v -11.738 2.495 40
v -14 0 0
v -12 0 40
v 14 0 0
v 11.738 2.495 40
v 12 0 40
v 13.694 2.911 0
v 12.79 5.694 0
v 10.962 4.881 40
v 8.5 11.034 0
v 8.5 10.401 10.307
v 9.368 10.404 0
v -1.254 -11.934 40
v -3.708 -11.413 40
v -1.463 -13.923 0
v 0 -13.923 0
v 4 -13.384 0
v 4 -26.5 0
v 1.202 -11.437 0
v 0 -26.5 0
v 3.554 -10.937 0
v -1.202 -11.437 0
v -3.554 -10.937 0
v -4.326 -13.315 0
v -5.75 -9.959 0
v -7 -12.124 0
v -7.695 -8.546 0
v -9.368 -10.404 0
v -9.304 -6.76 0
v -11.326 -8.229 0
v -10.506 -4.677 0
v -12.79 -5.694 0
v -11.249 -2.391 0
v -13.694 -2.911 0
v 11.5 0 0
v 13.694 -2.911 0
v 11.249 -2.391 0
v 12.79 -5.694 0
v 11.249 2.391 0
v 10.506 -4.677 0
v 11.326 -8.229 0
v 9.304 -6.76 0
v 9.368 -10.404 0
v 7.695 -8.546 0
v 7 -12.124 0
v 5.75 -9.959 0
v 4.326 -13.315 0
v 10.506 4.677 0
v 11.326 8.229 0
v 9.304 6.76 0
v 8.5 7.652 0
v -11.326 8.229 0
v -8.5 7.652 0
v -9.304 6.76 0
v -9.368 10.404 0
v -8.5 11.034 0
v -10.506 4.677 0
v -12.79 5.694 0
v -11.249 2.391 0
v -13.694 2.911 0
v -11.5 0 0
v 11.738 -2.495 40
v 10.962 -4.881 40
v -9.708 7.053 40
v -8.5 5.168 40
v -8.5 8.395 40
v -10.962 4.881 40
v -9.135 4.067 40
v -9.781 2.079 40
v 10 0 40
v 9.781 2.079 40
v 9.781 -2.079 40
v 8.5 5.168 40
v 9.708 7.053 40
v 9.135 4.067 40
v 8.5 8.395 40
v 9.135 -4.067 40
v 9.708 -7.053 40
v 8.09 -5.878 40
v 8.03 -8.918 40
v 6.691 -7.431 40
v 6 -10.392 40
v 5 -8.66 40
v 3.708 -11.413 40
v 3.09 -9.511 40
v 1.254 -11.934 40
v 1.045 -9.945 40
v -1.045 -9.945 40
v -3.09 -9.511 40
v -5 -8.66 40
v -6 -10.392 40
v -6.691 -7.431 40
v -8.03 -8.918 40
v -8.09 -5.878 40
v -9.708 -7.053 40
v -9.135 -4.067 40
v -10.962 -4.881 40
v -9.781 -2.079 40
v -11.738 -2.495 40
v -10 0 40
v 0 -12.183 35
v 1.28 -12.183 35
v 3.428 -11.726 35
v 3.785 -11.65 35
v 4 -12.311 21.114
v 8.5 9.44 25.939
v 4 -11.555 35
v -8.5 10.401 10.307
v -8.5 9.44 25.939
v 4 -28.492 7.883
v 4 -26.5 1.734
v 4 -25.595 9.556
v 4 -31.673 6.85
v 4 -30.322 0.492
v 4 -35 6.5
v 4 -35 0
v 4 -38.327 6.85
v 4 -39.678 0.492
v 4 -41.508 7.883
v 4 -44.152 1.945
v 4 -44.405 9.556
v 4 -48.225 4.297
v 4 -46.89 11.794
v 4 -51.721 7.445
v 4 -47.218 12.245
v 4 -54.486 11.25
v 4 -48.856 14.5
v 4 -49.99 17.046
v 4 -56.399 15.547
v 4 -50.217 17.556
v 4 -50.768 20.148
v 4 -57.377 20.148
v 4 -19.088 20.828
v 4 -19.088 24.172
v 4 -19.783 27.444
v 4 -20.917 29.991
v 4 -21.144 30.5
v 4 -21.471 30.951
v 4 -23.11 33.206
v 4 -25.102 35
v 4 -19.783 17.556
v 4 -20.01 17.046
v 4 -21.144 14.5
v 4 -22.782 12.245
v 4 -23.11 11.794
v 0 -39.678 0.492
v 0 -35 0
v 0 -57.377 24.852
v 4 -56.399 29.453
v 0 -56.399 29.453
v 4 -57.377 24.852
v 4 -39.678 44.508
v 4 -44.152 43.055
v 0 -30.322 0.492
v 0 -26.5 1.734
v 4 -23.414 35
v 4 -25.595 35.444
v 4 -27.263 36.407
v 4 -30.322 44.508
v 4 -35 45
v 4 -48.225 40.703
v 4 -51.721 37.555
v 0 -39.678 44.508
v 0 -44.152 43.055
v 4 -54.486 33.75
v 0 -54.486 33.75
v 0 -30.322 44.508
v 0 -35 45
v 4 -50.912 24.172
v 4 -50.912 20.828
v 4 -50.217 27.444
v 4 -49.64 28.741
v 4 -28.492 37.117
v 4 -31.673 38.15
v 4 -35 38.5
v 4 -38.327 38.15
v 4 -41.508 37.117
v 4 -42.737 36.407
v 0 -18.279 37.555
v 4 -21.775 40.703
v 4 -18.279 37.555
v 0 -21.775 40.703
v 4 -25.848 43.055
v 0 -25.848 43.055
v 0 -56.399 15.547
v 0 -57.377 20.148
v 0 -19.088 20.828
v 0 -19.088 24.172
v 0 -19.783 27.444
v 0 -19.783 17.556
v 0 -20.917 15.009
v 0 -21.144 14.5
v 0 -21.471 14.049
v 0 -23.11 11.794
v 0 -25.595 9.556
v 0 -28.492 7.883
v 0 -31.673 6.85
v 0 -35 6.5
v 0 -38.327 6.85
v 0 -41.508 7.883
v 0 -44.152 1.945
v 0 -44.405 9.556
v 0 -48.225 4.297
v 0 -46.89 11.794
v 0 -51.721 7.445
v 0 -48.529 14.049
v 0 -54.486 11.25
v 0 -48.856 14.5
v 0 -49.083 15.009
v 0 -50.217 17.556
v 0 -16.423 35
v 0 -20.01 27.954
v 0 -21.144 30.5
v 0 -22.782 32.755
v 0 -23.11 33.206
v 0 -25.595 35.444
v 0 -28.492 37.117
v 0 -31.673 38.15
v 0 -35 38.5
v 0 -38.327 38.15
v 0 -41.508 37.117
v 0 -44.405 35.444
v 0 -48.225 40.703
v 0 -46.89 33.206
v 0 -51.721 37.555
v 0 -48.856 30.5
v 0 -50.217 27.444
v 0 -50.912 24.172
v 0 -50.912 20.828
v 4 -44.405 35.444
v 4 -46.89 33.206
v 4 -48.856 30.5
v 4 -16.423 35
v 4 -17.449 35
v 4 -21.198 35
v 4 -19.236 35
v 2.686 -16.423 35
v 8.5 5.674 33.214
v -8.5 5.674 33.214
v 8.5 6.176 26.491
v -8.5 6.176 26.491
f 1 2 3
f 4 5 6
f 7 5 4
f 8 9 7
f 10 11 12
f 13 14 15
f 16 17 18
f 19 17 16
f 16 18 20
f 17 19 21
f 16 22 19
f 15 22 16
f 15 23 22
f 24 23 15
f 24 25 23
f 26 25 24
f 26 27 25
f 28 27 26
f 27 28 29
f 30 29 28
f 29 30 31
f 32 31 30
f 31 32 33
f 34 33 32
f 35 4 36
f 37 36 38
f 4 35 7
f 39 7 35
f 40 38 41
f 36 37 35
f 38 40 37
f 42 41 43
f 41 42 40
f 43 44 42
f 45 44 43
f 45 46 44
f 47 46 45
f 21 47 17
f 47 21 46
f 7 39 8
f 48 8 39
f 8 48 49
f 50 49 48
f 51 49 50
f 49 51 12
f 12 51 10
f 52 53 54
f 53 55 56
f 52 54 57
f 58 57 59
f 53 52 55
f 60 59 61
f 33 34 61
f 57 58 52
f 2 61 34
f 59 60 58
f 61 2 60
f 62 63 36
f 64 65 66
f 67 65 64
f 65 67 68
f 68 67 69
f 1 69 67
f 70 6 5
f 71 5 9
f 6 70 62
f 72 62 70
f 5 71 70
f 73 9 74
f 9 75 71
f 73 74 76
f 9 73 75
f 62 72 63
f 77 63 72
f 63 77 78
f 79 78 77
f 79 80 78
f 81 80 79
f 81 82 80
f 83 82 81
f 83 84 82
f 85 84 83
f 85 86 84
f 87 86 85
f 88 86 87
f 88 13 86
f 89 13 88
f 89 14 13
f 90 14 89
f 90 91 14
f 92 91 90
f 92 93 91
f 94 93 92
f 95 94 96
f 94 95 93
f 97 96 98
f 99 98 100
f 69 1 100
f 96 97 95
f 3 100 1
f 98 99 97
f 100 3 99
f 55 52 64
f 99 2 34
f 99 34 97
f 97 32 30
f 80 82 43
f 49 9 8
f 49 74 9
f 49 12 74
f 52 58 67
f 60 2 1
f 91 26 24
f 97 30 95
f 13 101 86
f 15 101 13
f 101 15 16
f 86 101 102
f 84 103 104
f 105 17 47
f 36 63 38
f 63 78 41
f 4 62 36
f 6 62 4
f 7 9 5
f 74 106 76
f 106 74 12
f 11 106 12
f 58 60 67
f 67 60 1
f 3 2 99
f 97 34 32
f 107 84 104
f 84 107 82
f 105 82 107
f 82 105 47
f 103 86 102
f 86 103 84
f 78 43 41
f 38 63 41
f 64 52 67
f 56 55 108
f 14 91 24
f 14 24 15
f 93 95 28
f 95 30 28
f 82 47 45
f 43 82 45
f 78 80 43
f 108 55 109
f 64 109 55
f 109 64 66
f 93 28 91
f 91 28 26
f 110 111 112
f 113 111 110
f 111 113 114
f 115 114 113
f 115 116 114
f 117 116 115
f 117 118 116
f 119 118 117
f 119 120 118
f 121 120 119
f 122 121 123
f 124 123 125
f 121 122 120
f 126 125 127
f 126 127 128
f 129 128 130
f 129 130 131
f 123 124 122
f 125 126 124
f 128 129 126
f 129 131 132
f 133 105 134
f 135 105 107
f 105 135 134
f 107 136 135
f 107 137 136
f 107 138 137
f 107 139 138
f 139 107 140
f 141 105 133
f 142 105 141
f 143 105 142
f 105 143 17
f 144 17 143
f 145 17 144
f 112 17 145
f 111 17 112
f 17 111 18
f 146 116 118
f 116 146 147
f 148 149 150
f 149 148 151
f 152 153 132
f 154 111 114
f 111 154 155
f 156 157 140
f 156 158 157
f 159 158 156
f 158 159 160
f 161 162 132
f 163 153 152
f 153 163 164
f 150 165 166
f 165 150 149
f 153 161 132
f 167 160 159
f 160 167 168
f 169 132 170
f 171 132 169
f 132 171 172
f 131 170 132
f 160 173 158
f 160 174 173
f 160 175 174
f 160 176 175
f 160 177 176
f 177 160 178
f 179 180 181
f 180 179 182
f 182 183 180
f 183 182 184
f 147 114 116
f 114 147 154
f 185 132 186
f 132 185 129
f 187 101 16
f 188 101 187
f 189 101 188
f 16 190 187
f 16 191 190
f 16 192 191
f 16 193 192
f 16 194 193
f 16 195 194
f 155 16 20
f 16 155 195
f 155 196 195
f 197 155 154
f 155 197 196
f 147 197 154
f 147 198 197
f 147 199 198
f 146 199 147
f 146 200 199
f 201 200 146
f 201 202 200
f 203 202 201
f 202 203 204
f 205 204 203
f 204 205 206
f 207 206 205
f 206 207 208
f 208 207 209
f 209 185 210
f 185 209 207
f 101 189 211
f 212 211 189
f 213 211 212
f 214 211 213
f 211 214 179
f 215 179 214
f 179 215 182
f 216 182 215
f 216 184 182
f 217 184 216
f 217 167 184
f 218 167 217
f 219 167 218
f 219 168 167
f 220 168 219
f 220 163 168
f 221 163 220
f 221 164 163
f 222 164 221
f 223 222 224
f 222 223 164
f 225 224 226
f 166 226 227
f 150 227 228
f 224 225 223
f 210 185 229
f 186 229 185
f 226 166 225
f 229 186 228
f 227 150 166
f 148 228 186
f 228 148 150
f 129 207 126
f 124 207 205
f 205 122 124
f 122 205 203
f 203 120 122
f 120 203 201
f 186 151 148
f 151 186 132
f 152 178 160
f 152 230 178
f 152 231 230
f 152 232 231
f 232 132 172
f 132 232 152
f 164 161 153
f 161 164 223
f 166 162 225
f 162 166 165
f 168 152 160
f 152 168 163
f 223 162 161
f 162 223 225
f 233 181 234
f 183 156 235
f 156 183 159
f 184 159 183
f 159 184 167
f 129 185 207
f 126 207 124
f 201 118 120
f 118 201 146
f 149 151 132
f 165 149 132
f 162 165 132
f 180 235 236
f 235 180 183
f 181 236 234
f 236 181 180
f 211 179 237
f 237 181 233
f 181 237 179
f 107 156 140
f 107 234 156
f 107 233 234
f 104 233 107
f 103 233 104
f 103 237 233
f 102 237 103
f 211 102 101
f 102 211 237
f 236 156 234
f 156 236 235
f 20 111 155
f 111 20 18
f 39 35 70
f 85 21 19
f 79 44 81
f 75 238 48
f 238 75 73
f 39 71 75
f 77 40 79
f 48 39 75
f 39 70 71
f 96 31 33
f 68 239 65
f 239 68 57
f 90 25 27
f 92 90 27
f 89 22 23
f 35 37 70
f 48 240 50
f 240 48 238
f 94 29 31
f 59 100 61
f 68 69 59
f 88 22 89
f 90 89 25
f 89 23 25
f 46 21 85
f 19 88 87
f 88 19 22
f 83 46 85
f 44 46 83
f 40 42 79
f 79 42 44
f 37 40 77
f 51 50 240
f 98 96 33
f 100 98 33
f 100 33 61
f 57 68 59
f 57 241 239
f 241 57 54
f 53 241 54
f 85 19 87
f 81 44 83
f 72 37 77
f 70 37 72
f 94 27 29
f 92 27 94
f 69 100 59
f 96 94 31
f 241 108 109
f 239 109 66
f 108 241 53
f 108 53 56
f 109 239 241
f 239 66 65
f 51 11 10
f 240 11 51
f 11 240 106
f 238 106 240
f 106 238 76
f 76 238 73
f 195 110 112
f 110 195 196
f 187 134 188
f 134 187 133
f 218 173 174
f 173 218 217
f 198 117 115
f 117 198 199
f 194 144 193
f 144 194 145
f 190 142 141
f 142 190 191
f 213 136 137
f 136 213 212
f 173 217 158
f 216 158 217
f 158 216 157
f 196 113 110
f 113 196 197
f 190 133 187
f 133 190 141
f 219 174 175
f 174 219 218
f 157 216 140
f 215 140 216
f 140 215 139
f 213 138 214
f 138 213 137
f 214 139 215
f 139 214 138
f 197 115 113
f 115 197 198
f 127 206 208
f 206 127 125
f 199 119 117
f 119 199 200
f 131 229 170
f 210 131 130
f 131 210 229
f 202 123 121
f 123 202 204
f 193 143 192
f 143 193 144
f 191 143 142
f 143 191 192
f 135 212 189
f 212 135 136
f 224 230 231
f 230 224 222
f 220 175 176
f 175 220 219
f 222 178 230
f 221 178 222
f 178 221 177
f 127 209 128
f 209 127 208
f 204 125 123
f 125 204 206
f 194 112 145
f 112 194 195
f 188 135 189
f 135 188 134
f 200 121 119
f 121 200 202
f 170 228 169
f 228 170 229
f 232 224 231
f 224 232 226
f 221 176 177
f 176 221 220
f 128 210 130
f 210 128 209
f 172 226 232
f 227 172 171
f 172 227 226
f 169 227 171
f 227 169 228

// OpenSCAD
wall = 2.5;
difference() {
    union() {
        cylinder(d1=23+wall*2, d2 = 19+wall*2, h=40);
        translate([0,-45/2-20/2-wall,45/2]) rotate([0,90,0])cylinder(d=45, h=4);
        translate([0,-10-20/2-wall-4,0]) cube([4,15,35]);
    }
    cylinder(d1=23, d2 = 20, h=40);
    xx=17;
    translate([-xx/2,0,0]) cube([xx,15,45]);
    
    translate([0,-45/2-20/2-wall,45/2]) rotate([0,90,0])cylinder(d=32, h=4);
    
}
